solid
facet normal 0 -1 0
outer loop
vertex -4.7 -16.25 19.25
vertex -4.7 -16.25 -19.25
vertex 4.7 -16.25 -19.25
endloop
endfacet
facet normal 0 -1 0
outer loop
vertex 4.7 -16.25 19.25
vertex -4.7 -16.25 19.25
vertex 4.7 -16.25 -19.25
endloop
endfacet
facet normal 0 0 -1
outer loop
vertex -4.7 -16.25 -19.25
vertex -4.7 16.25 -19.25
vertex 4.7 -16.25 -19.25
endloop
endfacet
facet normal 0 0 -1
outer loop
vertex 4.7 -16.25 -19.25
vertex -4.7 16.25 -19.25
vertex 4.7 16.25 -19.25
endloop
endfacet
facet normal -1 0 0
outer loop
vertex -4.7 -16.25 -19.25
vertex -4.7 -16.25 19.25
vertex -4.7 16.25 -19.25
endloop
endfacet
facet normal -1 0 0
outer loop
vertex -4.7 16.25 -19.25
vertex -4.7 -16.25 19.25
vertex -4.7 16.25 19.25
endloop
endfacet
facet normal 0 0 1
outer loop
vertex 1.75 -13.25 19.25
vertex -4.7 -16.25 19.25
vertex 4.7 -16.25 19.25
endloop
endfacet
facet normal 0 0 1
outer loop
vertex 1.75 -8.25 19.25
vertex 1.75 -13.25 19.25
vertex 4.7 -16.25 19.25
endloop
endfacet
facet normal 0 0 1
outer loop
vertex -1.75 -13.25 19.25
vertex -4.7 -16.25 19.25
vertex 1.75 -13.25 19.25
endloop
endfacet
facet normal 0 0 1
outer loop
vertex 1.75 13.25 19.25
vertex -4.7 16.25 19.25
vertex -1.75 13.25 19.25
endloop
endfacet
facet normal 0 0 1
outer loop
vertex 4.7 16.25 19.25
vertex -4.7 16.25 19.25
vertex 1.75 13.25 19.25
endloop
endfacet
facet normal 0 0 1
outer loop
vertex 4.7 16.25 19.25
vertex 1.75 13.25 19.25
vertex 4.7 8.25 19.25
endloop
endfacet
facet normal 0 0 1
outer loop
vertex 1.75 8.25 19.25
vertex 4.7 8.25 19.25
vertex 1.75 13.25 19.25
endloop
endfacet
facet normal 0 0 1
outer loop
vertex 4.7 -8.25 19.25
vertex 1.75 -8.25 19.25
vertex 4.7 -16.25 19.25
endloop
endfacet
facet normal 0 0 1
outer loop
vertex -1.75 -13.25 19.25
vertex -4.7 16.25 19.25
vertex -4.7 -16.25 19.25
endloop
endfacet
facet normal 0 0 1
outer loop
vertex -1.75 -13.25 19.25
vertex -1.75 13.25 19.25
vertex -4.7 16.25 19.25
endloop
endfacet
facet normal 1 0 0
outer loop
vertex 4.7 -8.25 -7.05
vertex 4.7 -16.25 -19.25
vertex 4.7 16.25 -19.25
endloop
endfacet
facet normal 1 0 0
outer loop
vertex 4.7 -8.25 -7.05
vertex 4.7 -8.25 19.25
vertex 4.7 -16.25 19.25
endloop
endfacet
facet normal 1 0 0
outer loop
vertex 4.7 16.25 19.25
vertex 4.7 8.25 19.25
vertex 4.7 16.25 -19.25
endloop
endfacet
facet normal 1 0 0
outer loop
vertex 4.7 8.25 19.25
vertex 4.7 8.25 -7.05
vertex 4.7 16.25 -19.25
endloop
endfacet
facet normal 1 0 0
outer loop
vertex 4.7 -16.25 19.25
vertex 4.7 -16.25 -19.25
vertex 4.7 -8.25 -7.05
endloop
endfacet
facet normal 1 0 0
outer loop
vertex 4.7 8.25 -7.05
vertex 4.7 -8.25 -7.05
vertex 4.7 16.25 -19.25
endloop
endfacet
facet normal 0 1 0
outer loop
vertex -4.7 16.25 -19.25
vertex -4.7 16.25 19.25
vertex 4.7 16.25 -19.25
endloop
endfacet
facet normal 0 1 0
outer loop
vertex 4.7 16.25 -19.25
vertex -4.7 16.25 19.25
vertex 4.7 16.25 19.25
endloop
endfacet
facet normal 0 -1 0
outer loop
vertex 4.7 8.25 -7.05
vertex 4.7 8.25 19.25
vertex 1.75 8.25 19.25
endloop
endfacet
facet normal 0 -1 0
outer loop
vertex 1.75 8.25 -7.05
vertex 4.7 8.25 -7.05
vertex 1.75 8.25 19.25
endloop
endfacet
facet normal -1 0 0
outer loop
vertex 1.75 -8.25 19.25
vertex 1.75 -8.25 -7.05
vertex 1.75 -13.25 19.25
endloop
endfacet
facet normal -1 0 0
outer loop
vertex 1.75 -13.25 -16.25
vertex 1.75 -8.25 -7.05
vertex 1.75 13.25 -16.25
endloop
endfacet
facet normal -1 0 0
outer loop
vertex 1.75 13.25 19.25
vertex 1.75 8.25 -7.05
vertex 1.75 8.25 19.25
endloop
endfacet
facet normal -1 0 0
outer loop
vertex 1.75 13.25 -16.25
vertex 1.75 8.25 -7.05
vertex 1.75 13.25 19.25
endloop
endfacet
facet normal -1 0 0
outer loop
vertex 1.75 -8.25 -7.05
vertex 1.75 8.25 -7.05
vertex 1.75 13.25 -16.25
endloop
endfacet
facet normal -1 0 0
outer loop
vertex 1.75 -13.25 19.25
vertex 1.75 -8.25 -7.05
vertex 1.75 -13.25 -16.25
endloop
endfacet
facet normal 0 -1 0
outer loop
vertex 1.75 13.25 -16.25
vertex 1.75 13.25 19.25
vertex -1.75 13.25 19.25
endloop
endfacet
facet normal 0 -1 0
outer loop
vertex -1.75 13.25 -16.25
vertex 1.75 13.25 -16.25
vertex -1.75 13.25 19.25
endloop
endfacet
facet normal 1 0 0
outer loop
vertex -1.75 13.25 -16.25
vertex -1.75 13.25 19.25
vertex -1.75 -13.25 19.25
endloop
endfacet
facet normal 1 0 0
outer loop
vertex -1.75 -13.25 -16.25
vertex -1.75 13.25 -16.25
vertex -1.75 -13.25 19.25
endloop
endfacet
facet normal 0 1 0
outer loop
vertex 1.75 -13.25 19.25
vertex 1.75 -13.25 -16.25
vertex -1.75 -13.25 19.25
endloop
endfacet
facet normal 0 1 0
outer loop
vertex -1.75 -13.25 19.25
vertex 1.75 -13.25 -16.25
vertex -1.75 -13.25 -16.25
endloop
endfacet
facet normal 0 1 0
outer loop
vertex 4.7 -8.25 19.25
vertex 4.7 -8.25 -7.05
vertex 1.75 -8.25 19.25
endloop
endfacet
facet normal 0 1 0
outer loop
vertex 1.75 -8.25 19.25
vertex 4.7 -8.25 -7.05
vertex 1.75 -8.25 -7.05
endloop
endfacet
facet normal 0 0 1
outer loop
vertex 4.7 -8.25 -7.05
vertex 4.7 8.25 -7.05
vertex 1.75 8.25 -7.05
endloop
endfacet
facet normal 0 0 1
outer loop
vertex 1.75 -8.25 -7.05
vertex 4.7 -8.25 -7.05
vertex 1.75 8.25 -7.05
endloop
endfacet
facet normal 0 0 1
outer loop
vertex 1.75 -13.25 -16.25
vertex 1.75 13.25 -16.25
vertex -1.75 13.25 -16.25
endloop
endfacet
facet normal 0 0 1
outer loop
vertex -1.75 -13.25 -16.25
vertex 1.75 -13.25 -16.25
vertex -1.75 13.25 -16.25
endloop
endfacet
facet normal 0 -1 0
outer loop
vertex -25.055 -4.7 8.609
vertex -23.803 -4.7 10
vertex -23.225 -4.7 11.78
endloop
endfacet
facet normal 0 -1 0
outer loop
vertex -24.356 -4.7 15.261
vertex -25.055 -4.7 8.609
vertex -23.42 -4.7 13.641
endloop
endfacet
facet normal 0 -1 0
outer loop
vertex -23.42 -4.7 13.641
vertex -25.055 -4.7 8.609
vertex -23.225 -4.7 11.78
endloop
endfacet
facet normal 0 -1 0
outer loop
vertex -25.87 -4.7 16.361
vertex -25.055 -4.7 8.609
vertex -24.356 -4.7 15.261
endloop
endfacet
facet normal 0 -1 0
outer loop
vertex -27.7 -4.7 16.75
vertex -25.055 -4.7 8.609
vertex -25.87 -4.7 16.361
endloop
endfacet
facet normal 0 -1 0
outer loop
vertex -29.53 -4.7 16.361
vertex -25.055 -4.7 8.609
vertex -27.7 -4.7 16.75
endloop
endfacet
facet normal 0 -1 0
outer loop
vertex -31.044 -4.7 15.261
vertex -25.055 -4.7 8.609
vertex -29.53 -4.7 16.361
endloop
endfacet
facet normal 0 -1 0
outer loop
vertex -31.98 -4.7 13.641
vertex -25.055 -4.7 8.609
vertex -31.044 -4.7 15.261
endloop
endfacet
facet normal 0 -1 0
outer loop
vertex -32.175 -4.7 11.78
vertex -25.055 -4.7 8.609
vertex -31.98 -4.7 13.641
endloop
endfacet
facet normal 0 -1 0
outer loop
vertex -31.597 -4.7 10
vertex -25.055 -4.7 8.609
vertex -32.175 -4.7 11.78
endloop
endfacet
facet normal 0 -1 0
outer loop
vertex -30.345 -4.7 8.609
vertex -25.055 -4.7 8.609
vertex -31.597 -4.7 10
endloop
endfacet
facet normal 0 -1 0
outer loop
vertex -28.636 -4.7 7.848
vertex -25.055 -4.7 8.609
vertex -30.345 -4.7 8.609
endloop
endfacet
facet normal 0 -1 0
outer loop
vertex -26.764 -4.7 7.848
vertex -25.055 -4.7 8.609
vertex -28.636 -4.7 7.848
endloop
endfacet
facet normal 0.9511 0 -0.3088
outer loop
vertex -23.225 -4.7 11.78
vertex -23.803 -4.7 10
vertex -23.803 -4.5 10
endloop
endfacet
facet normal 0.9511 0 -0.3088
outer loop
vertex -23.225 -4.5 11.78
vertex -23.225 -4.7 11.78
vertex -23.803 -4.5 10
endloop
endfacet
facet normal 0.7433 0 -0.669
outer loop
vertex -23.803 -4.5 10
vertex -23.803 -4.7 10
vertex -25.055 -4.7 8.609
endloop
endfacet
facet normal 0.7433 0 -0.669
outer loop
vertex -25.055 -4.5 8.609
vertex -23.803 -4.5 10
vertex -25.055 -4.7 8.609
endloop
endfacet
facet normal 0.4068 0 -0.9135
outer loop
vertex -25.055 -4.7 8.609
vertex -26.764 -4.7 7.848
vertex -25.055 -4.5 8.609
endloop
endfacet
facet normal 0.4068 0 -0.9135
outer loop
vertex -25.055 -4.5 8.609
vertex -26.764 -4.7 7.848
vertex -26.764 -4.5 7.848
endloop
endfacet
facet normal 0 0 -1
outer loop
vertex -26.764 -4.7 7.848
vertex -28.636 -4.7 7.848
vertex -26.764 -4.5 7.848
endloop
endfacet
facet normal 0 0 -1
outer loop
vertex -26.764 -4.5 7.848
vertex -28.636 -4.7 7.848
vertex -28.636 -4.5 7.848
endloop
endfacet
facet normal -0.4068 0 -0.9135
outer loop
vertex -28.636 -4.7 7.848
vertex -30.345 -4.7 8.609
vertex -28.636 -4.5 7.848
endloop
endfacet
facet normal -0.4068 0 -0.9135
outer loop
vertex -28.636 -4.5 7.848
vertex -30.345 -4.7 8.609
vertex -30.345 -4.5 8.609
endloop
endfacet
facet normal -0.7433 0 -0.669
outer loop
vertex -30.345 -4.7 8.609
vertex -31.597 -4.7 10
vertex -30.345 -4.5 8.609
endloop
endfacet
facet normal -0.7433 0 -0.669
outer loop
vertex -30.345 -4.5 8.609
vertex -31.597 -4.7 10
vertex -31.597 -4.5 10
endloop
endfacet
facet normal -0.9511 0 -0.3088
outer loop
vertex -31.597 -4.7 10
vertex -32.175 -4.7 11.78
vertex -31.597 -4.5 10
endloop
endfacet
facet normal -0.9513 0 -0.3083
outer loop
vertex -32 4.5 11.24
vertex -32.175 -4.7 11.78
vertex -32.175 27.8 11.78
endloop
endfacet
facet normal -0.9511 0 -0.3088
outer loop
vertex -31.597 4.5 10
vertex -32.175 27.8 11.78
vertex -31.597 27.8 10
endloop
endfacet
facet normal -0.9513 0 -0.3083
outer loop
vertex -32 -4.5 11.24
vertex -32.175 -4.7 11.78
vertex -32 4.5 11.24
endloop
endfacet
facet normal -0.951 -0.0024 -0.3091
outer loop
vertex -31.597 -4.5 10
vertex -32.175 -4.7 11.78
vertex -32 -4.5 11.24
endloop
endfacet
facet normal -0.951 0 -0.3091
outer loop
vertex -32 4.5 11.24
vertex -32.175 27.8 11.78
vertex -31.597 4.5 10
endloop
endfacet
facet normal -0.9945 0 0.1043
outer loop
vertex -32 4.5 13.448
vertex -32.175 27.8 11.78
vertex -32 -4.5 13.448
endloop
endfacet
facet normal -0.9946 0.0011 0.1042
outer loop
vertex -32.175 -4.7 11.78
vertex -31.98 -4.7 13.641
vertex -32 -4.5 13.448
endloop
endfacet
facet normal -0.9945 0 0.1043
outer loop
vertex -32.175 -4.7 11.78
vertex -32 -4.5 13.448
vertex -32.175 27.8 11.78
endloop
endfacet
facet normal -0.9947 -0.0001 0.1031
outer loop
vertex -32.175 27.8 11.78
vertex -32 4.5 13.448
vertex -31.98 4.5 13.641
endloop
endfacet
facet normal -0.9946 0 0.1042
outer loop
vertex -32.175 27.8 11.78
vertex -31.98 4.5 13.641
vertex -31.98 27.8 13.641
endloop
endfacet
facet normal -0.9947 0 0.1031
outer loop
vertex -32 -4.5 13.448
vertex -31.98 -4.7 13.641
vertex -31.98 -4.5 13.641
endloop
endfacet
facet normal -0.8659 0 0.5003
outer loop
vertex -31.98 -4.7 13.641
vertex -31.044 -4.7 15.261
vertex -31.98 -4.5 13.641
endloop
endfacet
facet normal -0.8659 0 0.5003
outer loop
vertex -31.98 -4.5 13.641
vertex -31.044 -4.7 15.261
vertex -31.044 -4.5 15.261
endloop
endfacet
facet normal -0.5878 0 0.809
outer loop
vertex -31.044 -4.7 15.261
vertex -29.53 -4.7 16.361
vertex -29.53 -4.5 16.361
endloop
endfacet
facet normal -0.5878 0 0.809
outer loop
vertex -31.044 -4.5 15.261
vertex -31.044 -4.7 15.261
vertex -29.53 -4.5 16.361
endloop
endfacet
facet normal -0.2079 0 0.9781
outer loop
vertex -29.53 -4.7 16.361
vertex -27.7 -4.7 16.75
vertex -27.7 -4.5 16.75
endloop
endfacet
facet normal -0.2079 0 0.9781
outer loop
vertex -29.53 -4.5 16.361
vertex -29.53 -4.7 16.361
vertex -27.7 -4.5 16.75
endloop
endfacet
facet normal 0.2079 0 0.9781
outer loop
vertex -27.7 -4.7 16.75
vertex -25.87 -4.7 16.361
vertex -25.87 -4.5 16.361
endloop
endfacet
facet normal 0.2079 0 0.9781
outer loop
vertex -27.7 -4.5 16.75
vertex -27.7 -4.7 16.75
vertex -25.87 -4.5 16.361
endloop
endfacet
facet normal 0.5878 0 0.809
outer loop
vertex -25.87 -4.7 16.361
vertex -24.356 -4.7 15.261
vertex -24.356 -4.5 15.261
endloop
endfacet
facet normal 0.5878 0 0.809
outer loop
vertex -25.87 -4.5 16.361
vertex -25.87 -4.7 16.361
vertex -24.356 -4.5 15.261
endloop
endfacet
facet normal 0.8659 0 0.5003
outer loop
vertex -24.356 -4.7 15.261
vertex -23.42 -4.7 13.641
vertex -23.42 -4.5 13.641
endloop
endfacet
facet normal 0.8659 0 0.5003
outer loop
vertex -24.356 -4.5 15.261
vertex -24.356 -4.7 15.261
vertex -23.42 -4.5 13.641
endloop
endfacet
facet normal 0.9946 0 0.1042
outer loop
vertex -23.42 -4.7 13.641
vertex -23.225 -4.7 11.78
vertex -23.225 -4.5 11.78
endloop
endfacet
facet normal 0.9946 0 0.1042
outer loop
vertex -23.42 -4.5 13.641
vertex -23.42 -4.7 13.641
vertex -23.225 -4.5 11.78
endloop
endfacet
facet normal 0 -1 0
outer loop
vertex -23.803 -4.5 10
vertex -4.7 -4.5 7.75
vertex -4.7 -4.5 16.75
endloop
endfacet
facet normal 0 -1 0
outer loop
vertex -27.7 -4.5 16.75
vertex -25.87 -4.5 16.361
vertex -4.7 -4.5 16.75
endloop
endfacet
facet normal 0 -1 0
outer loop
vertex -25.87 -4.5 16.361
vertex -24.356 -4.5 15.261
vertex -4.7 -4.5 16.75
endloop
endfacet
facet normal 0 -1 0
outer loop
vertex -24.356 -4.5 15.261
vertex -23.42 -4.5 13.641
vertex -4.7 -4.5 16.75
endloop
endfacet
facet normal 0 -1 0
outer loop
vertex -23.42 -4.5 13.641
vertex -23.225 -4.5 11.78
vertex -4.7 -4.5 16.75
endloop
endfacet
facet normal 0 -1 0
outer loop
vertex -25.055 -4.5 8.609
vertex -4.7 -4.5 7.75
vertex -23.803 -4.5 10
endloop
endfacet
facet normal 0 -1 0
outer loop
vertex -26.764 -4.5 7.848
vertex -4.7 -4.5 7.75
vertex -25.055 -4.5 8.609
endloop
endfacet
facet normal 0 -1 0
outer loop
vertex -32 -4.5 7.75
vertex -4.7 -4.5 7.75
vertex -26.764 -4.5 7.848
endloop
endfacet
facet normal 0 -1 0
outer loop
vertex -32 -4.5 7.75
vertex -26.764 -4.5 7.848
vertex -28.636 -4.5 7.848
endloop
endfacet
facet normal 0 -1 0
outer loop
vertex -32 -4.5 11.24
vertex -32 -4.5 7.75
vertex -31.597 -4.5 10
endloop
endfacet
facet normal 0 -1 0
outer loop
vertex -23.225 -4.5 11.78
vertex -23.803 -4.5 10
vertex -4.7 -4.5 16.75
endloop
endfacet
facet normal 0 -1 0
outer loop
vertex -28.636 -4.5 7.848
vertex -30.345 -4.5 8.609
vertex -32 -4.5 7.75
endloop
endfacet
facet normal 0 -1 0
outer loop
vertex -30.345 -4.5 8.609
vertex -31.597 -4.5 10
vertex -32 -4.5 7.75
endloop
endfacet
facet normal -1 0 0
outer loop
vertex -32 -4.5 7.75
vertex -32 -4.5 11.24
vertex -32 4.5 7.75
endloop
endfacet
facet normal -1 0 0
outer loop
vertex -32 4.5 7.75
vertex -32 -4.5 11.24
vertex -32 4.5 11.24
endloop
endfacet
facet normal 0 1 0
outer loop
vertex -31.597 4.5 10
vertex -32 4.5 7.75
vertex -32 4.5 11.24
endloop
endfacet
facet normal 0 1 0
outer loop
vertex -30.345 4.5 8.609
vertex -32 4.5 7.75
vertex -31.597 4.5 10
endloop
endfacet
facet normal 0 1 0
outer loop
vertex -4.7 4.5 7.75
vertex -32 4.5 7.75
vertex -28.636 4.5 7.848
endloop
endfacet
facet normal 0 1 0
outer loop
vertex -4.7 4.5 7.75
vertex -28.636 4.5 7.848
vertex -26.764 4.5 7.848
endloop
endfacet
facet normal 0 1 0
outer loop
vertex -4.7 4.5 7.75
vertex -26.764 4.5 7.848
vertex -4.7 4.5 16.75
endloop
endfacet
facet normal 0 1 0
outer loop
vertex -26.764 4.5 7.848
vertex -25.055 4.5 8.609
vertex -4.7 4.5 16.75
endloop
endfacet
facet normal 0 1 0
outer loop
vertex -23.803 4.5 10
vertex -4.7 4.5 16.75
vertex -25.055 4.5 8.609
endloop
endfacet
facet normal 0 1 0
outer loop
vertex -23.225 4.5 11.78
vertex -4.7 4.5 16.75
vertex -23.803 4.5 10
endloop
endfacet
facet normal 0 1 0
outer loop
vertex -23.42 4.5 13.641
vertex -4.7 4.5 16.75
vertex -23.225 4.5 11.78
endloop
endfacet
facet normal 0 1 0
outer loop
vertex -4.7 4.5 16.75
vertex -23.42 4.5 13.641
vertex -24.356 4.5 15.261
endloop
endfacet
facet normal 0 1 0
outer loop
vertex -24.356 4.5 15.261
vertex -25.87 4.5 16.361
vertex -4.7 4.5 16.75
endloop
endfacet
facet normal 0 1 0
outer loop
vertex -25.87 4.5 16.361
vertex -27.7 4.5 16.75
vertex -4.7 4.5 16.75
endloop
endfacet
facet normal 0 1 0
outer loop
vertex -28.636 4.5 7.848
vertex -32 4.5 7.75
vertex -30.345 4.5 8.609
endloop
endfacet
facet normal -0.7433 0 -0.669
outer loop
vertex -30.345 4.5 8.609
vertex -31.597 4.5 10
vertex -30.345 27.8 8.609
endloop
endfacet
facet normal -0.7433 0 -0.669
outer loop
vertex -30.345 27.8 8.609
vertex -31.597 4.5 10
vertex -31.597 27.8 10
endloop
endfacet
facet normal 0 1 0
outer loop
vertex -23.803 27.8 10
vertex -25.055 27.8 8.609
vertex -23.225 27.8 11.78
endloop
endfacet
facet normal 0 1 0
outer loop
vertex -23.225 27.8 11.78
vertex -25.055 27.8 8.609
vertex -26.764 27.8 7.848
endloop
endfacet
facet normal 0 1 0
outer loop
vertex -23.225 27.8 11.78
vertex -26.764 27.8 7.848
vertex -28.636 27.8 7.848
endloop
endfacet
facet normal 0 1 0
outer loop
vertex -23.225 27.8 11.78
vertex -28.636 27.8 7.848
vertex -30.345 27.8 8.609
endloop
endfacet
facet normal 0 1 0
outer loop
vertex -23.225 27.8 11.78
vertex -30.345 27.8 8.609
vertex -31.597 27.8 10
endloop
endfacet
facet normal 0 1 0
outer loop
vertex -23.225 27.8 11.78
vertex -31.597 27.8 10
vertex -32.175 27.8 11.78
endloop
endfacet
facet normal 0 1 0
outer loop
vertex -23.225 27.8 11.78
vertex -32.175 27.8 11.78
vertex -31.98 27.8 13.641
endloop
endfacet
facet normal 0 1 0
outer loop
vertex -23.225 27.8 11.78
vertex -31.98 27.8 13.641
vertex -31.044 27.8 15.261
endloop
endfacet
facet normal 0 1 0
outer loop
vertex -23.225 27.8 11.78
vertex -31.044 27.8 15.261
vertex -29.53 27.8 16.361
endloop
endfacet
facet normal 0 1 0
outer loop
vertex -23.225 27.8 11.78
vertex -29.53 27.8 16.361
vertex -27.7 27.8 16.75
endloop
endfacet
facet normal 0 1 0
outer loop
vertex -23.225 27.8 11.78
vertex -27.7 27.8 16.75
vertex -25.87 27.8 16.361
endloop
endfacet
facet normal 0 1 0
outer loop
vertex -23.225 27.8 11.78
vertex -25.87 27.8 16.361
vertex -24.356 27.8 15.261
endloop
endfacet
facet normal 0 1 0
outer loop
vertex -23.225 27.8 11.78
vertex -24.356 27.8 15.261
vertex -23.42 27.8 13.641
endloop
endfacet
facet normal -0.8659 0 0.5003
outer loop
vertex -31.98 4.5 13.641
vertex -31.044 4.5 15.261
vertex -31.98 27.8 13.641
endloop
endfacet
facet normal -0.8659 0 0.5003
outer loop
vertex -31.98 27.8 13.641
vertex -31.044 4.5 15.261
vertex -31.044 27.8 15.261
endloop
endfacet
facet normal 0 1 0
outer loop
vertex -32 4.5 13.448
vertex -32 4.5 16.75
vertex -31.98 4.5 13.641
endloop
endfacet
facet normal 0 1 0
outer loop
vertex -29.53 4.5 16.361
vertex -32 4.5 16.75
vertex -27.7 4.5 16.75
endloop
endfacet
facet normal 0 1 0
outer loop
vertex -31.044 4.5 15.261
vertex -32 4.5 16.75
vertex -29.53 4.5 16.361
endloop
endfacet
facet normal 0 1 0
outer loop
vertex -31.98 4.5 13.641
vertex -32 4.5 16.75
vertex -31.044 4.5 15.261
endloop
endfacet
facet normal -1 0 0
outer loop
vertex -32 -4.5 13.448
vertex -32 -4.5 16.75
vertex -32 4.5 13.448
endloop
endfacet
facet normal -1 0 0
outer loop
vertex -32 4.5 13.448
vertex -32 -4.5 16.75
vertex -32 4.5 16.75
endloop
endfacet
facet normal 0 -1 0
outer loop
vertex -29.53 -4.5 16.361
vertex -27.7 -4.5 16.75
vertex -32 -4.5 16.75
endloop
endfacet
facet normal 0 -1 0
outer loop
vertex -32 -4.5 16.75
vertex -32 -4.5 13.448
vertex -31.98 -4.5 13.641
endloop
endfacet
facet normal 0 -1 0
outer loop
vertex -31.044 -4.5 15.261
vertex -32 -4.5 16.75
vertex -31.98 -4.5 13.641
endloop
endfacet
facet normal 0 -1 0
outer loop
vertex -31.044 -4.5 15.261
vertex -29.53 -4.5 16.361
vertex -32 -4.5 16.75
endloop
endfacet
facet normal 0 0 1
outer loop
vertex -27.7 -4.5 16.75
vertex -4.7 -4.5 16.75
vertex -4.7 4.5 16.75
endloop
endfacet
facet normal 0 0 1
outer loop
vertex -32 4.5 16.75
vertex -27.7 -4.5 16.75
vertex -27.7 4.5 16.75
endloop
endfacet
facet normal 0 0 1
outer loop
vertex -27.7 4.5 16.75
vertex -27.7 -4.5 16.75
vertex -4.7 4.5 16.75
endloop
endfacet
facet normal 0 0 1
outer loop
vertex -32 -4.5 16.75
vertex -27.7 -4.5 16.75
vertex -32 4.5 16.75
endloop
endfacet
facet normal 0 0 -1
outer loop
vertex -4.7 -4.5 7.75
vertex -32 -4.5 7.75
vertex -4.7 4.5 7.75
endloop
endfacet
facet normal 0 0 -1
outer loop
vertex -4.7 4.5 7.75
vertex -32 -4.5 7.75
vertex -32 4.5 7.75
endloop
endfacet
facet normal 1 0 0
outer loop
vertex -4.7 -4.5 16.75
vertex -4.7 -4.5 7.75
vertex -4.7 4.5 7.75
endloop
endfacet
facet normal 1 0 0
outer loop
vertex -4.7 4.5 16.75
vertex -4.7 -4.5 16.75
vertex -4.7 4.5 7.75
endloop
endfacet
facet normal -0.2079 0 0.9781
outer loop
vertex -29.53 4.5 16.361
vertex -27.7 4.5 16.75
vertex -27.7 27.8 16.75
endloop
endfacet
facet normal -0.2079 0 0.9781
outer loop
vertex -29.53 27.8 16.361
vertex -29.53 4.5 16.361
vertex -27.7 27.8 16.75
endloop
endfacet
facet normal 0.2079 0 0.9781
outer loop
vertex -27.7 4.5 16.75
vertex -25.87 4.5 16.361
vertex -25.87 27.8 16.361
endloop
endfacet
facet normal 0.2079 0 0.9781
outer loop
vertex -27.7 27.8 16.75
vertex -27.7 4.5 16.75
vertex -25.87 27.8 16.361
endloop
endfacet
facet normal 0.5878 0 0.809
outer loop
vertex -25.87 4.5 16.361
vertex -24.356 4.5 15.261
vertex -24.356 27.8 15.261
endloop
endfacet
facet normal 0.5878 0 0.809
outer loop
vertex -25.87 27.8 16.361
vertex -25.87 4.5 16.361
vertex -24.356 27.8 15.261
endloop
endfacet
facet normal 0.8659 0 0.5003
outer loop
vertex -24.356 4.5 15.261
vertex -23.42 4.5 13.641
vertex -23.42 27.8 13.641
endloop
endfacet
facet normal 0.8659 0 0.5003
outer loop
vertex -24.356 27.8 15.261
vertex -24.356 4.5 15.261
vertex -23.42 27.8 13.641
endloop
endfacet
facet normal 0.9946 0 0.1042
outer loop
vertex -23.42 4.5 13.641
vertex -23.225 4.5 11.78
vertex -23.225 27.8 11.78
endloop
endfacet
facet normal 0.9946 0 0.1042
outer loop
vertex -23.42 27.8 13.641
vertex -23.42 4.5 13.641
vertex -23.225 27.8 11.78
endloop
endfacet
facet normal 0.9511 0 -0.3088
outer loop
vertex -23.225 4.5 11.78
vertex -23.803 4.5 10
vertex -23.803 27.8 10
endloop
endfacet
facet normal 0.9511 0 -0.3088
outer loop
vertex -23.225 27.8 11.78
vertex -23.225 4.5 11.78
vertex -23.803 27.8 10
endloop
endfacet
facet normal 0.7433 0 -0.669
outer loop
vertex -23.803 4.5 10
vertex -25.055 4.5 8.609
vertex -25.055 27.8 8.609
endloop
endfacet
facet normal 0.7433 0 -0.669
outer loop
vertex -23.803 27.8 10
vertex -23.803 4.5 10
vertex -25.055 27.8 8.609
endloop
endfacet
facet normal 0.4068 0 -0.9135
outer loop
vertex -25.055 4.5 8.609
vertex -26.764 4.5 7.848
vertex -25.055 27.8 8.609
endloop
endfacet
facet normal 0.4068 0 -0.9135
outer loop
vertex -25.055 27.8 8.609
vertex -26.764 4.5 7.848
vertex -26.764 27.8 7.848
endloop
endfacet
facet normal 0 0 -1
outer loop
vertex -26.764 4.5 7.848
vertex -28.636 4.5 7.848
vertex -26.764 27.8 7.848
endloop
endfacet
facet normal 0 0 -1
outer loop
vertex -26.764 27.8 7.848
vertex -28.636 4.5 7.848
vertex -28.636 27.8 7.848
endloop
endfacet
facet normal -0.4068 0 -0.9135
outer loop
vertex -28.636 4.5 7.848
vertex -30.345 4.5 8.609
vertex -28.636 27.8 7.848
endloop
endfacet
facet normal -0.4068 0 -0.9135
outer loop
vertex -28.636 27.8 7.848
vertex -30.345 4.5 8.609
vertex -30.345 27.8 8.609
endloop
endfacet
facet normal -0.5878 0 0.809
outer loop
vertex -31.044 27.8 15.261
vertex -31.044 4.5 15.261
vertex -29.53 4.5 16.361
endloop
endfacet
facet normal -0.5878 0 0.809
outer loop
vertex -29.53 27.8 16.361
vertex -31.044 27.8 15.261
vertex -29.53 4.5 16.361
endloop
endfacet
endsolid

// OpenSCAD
/*
 *  OpenSCAD toilet-seat-holder-right.scad
 *  Copyright (C) 2013 Mogue Carpenter
 *
 *  License: LGPL 2.1 or later
 *
 *  A simple holder to hold a toilet seat
 *  onto a bow.
*/

rotate([90,0,90])
seat_hook();

module seat_hook(){
	base();
	rotate([180,0,90])
		translate([(32.5/2)-(13-9),0,(9.4/2)+((36.7-9.4)/2)])
			hook();
}

module hook(){
	cube([9,9,36.7-9.4],center = true);
	translate([0,(32.5-9.4)/2,(36.7/2)-(9) ] )
		rotate ([90,0,0])
			cylinder(h = 32.5, r = 9/2,center = true);

}

module base(){
	difference () {
		cube (size=[32.5,38.5,9.4], center=true);
		translate([0,3,0])
			cube (size=[1+32.5-7,38.5,3.5],center=true);
		translate([0,8.2,5])
			cube (size=[32.5-(8*2),38.5-(8),10],center=true);
	};
};
